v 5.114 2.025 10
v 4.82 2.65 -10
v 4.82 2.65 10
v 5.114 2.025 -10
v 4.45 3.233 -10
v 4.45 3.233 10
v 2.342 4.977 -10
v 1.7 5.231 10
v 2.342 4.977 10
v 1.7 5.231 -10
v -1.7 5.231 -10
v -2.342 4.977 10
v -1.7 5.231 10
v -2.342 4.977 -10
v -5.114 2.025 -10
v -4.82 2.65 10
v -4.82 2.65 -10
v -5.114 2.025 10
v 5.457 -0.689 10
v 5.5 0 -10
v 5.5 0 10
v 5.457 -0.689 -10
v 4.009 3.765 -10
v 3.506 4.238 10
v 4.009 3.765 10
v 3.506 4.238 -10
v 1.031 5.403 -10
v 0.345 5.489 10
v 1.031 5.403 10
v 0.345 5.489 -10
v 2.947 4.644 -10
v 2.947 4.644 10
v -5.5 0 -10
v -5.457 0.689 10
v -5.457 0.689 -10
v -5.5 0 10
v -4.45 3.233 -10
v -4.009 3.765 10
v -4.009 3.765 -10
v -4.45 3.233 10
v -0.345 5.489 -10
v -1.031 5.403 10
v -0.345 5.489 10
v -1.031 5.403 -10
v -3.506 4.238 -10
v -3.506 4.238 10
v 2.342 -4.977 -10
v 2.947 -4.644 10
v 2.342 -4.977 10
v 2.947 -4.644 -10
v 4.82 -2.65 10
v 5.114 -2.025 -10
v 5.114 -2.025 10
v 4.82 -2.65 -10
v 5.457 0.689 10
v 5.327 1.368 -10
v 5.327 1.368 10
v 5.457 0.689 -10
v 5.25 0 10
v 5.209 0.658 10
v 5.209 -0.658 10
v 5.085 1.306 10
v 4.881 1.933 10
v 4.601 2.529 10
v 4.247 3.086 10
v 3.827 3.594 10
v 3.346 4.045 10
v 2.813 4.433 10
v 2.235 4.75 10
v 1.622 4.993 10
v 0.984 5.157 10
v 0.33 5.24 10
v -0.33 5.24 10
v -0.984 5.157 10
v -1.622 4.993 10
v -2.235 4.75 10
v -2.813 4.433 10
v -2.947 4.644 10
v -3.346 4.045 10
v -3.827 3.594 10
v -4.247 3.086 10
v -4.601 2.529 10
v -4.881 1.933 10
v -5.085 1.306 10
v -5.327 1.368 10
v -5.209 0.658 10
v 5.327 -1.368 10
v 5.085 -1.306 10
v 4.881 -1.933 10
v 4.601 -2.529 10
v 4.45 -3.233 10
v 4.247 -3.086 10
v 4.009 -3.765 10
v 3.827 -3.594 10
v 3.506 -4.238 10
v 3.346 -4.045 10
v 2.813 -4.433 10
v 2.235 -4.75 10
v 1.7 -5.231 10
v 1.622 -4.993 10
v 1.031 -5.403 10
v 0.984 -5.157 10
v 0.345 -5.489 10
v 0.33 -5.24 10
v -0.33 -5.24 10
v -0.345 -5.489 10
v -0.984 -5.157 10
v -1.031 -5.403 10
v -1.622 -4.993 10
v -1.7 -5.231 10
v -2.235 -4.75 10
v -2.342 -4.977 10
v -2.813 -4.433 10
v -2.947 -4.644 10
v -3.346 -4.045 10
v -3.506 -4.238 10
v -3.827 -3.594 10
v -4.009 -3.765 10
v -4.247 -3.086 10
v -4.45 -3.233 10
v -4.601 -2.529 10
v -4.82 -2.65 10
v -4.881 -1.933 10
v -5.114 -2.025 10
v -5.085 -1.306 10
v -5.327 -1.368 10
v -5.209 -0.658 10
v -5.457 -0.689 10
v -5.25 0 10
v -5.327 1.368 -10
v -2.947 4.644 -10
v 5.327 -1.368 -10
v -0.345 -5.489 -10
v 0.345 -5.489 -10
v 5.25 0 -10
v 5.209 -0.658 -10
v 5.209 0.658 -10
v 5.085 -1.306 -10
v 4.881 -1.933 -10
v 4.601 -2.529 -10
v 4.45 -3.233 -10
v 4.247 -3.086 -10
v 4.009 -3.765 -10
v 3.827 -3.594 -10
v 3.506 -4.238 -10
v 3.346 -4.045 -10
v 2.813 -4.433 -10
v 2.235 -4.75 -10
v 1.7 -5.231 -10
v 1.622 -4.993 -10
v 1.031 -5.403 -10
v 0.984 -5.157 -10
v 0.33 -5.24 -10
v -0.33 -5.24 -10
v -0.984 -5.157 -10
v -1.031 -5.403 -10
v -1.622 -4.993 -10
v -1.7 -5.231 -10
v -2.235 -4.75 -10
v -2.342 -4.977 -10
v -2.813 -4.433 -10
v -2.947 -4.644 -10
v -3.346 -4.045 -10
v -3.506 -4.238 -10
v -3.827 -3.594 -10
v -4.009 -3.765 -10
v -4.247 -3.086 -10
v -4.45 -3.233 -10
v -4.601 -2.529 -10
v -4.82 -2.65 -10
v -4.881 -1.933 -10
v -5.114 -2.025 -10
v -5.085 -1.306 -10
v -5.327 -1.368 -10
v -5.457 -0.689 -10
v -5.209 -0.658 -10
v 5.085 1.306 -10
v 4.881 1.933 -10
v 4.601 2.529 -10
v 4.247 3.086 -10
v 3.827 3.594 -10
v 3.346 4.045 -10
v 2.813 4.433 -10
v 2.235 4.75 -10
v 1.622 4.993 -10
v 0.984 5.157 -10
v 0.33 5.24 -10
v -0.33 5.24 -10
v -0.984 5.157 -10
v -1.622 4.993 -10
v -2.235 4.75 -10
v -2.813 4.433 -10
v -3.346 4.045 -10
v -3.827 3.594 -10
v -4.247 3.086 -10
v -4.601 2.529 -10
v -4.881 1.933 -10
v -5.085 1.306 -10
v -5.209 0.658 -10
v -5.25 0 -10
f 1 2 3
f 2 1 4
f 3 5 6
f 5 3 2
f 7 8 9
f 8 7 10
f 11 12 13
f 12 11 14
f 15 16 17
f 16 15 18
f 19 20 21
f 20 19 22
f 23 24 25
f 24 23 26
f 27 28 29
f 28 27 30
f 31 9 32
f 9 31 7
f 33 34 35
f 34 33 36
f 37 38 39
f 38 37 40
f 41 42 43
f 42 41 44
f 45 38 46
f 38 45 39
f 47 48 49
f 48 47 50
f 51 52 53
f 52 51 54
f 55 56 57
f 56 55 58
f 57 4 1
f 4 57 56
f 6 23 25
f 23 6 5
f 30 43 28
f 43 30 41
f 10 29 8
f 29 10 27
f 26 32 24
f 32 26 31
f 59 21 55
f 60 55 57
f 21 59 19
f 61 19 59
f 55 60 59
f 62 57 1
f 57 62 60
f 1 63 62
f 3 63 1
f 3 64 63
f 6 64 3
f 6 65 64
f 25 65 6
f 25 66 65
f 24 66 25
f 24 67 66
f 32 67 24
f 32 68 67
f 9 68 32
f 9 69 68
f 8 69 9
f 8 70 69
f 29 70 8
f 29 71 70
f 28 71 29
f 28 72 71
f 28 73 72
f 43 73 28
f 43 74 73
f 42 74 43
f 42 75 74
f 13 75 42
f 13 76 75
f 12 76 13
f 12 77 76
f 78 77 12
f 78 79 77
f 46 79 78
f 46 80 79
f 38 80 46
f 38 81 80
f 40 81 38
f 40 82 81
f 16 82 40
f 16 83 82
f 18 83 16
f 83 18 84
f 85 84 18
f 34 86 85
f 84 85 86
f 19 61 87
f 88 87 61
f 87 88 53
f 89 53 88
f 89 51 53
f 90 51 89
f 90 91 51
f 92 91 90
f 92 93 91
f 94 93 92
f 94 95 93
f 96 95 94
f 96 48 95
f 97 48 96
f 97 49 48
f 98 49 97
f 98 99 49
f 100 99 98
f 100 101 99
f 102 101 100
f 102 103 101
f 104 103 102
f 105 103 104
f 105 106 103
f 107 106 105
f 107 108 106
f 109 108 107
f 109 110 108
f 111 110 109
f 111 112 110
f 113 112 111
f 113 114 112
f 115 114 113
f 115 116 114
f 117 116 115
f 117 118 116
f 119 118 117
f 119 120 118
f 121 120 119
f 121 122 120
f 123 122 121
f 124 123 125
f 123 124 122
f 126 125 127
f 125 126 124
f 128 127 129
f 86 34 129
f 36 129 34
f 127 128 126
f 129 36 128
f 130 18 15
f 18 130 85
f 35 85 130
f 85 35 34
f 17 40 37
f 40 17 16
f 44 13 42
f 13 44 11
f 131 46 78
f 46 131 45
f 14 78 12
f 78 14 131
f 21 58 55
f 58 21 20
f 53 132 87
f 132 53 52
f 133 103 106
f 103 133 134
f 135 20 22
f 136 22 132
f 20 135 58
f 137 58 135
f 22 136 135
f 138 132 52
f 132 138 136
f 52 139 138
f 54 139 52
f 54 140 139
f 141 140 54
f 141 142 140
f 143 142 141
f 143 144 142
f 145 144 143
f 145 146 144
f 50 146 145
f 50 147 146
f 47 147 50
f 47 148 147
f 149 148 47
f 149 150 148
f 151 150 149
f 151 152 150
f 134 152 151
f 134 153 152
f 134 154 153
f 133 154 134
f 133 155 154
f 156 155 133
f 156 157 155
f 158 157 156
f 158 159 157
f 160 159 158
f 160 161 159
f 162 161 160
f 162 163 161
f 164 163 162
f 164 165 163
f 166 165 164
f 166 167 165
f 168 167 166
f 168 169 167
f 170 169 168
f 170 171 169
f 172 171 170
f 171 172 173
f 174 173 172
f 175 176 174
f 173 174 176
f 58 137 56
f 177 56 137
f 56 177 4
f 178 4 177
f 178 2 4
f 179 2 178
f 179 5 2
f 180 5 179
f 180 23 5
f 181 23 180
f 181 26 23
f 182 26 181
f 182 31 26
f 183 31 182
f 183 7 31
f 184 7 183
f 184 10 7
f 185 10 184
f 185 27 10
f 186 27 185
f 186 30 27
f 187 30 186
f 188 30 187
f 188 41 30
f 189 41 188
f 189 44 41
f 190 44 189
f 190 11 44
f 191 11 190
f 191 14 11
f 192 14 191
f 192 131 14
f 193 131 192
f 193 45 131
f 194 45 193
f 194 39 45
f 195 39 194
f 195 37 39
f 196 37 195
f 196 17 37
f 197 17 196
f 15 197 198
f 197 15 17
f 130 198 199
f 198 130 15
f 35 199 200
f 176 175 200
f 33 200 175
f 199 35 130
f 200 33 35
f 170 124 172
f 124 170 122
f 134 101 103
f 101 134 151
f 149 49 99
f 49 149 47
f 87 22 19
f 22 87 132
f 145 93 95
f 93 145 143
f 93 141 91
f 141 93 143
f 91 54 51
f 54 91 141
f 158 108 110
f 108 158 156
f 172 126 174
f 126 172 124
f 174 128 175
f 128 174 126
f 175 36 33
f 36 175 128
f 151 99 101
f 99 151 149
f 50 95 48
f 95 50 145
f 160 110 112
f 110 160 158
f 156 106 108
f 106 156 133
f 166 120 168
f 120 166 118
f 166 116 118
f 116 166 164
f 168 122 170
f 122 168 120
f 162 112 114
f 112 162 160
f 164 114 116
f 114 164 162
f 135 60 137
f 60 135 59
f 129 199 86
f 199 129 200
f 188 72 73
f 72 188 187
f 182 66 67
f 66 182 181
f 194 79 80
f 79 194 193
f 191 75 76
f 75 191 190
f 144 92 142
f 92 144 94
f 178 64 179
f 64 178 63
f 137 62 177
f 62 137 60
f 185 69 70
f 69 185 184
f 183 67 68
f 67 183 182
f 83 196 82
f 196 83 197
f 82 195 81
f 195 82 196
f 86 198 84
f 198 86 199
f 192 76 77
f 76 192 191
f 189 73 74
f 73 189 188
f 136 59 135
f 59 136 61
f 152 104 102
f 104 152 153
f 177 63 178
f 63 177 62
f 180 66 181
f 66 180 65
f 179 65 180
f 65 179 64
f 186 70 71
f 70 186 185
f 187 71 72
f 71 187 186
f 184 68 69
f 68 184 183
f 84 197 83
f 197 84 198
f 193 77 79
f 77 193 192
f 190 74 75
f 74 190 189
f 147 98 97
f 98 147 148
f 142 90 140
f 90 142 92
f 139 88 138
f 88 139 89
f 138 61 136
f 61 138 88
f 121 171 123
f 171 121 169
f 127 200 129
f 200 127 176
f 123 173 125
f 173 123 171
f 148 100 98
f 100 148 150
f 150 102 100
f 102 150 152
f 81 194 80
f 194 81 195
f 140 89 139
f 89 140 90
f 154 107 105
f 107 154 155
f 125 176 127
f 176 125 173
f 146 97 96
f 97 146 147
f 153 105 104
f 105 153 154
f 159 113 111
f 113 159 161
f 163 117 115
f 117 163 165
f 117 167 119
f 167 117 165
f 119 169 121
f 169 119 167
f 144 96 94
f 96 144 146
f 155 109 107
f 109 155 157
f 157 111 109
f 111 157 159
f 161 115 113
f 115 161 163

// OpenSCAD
$fn = 50;


difference() {
	union() {
		translate(v = [0, 0, -10.0000000000]) {
			cylinder(h = 20, r = 5.5000000000);
		}
	}
	union() {
		translate(v = [0, 0, -100.0000000000]) {
			cylinder(h = 200, r = 5.2500000000);
		}
	}
}
